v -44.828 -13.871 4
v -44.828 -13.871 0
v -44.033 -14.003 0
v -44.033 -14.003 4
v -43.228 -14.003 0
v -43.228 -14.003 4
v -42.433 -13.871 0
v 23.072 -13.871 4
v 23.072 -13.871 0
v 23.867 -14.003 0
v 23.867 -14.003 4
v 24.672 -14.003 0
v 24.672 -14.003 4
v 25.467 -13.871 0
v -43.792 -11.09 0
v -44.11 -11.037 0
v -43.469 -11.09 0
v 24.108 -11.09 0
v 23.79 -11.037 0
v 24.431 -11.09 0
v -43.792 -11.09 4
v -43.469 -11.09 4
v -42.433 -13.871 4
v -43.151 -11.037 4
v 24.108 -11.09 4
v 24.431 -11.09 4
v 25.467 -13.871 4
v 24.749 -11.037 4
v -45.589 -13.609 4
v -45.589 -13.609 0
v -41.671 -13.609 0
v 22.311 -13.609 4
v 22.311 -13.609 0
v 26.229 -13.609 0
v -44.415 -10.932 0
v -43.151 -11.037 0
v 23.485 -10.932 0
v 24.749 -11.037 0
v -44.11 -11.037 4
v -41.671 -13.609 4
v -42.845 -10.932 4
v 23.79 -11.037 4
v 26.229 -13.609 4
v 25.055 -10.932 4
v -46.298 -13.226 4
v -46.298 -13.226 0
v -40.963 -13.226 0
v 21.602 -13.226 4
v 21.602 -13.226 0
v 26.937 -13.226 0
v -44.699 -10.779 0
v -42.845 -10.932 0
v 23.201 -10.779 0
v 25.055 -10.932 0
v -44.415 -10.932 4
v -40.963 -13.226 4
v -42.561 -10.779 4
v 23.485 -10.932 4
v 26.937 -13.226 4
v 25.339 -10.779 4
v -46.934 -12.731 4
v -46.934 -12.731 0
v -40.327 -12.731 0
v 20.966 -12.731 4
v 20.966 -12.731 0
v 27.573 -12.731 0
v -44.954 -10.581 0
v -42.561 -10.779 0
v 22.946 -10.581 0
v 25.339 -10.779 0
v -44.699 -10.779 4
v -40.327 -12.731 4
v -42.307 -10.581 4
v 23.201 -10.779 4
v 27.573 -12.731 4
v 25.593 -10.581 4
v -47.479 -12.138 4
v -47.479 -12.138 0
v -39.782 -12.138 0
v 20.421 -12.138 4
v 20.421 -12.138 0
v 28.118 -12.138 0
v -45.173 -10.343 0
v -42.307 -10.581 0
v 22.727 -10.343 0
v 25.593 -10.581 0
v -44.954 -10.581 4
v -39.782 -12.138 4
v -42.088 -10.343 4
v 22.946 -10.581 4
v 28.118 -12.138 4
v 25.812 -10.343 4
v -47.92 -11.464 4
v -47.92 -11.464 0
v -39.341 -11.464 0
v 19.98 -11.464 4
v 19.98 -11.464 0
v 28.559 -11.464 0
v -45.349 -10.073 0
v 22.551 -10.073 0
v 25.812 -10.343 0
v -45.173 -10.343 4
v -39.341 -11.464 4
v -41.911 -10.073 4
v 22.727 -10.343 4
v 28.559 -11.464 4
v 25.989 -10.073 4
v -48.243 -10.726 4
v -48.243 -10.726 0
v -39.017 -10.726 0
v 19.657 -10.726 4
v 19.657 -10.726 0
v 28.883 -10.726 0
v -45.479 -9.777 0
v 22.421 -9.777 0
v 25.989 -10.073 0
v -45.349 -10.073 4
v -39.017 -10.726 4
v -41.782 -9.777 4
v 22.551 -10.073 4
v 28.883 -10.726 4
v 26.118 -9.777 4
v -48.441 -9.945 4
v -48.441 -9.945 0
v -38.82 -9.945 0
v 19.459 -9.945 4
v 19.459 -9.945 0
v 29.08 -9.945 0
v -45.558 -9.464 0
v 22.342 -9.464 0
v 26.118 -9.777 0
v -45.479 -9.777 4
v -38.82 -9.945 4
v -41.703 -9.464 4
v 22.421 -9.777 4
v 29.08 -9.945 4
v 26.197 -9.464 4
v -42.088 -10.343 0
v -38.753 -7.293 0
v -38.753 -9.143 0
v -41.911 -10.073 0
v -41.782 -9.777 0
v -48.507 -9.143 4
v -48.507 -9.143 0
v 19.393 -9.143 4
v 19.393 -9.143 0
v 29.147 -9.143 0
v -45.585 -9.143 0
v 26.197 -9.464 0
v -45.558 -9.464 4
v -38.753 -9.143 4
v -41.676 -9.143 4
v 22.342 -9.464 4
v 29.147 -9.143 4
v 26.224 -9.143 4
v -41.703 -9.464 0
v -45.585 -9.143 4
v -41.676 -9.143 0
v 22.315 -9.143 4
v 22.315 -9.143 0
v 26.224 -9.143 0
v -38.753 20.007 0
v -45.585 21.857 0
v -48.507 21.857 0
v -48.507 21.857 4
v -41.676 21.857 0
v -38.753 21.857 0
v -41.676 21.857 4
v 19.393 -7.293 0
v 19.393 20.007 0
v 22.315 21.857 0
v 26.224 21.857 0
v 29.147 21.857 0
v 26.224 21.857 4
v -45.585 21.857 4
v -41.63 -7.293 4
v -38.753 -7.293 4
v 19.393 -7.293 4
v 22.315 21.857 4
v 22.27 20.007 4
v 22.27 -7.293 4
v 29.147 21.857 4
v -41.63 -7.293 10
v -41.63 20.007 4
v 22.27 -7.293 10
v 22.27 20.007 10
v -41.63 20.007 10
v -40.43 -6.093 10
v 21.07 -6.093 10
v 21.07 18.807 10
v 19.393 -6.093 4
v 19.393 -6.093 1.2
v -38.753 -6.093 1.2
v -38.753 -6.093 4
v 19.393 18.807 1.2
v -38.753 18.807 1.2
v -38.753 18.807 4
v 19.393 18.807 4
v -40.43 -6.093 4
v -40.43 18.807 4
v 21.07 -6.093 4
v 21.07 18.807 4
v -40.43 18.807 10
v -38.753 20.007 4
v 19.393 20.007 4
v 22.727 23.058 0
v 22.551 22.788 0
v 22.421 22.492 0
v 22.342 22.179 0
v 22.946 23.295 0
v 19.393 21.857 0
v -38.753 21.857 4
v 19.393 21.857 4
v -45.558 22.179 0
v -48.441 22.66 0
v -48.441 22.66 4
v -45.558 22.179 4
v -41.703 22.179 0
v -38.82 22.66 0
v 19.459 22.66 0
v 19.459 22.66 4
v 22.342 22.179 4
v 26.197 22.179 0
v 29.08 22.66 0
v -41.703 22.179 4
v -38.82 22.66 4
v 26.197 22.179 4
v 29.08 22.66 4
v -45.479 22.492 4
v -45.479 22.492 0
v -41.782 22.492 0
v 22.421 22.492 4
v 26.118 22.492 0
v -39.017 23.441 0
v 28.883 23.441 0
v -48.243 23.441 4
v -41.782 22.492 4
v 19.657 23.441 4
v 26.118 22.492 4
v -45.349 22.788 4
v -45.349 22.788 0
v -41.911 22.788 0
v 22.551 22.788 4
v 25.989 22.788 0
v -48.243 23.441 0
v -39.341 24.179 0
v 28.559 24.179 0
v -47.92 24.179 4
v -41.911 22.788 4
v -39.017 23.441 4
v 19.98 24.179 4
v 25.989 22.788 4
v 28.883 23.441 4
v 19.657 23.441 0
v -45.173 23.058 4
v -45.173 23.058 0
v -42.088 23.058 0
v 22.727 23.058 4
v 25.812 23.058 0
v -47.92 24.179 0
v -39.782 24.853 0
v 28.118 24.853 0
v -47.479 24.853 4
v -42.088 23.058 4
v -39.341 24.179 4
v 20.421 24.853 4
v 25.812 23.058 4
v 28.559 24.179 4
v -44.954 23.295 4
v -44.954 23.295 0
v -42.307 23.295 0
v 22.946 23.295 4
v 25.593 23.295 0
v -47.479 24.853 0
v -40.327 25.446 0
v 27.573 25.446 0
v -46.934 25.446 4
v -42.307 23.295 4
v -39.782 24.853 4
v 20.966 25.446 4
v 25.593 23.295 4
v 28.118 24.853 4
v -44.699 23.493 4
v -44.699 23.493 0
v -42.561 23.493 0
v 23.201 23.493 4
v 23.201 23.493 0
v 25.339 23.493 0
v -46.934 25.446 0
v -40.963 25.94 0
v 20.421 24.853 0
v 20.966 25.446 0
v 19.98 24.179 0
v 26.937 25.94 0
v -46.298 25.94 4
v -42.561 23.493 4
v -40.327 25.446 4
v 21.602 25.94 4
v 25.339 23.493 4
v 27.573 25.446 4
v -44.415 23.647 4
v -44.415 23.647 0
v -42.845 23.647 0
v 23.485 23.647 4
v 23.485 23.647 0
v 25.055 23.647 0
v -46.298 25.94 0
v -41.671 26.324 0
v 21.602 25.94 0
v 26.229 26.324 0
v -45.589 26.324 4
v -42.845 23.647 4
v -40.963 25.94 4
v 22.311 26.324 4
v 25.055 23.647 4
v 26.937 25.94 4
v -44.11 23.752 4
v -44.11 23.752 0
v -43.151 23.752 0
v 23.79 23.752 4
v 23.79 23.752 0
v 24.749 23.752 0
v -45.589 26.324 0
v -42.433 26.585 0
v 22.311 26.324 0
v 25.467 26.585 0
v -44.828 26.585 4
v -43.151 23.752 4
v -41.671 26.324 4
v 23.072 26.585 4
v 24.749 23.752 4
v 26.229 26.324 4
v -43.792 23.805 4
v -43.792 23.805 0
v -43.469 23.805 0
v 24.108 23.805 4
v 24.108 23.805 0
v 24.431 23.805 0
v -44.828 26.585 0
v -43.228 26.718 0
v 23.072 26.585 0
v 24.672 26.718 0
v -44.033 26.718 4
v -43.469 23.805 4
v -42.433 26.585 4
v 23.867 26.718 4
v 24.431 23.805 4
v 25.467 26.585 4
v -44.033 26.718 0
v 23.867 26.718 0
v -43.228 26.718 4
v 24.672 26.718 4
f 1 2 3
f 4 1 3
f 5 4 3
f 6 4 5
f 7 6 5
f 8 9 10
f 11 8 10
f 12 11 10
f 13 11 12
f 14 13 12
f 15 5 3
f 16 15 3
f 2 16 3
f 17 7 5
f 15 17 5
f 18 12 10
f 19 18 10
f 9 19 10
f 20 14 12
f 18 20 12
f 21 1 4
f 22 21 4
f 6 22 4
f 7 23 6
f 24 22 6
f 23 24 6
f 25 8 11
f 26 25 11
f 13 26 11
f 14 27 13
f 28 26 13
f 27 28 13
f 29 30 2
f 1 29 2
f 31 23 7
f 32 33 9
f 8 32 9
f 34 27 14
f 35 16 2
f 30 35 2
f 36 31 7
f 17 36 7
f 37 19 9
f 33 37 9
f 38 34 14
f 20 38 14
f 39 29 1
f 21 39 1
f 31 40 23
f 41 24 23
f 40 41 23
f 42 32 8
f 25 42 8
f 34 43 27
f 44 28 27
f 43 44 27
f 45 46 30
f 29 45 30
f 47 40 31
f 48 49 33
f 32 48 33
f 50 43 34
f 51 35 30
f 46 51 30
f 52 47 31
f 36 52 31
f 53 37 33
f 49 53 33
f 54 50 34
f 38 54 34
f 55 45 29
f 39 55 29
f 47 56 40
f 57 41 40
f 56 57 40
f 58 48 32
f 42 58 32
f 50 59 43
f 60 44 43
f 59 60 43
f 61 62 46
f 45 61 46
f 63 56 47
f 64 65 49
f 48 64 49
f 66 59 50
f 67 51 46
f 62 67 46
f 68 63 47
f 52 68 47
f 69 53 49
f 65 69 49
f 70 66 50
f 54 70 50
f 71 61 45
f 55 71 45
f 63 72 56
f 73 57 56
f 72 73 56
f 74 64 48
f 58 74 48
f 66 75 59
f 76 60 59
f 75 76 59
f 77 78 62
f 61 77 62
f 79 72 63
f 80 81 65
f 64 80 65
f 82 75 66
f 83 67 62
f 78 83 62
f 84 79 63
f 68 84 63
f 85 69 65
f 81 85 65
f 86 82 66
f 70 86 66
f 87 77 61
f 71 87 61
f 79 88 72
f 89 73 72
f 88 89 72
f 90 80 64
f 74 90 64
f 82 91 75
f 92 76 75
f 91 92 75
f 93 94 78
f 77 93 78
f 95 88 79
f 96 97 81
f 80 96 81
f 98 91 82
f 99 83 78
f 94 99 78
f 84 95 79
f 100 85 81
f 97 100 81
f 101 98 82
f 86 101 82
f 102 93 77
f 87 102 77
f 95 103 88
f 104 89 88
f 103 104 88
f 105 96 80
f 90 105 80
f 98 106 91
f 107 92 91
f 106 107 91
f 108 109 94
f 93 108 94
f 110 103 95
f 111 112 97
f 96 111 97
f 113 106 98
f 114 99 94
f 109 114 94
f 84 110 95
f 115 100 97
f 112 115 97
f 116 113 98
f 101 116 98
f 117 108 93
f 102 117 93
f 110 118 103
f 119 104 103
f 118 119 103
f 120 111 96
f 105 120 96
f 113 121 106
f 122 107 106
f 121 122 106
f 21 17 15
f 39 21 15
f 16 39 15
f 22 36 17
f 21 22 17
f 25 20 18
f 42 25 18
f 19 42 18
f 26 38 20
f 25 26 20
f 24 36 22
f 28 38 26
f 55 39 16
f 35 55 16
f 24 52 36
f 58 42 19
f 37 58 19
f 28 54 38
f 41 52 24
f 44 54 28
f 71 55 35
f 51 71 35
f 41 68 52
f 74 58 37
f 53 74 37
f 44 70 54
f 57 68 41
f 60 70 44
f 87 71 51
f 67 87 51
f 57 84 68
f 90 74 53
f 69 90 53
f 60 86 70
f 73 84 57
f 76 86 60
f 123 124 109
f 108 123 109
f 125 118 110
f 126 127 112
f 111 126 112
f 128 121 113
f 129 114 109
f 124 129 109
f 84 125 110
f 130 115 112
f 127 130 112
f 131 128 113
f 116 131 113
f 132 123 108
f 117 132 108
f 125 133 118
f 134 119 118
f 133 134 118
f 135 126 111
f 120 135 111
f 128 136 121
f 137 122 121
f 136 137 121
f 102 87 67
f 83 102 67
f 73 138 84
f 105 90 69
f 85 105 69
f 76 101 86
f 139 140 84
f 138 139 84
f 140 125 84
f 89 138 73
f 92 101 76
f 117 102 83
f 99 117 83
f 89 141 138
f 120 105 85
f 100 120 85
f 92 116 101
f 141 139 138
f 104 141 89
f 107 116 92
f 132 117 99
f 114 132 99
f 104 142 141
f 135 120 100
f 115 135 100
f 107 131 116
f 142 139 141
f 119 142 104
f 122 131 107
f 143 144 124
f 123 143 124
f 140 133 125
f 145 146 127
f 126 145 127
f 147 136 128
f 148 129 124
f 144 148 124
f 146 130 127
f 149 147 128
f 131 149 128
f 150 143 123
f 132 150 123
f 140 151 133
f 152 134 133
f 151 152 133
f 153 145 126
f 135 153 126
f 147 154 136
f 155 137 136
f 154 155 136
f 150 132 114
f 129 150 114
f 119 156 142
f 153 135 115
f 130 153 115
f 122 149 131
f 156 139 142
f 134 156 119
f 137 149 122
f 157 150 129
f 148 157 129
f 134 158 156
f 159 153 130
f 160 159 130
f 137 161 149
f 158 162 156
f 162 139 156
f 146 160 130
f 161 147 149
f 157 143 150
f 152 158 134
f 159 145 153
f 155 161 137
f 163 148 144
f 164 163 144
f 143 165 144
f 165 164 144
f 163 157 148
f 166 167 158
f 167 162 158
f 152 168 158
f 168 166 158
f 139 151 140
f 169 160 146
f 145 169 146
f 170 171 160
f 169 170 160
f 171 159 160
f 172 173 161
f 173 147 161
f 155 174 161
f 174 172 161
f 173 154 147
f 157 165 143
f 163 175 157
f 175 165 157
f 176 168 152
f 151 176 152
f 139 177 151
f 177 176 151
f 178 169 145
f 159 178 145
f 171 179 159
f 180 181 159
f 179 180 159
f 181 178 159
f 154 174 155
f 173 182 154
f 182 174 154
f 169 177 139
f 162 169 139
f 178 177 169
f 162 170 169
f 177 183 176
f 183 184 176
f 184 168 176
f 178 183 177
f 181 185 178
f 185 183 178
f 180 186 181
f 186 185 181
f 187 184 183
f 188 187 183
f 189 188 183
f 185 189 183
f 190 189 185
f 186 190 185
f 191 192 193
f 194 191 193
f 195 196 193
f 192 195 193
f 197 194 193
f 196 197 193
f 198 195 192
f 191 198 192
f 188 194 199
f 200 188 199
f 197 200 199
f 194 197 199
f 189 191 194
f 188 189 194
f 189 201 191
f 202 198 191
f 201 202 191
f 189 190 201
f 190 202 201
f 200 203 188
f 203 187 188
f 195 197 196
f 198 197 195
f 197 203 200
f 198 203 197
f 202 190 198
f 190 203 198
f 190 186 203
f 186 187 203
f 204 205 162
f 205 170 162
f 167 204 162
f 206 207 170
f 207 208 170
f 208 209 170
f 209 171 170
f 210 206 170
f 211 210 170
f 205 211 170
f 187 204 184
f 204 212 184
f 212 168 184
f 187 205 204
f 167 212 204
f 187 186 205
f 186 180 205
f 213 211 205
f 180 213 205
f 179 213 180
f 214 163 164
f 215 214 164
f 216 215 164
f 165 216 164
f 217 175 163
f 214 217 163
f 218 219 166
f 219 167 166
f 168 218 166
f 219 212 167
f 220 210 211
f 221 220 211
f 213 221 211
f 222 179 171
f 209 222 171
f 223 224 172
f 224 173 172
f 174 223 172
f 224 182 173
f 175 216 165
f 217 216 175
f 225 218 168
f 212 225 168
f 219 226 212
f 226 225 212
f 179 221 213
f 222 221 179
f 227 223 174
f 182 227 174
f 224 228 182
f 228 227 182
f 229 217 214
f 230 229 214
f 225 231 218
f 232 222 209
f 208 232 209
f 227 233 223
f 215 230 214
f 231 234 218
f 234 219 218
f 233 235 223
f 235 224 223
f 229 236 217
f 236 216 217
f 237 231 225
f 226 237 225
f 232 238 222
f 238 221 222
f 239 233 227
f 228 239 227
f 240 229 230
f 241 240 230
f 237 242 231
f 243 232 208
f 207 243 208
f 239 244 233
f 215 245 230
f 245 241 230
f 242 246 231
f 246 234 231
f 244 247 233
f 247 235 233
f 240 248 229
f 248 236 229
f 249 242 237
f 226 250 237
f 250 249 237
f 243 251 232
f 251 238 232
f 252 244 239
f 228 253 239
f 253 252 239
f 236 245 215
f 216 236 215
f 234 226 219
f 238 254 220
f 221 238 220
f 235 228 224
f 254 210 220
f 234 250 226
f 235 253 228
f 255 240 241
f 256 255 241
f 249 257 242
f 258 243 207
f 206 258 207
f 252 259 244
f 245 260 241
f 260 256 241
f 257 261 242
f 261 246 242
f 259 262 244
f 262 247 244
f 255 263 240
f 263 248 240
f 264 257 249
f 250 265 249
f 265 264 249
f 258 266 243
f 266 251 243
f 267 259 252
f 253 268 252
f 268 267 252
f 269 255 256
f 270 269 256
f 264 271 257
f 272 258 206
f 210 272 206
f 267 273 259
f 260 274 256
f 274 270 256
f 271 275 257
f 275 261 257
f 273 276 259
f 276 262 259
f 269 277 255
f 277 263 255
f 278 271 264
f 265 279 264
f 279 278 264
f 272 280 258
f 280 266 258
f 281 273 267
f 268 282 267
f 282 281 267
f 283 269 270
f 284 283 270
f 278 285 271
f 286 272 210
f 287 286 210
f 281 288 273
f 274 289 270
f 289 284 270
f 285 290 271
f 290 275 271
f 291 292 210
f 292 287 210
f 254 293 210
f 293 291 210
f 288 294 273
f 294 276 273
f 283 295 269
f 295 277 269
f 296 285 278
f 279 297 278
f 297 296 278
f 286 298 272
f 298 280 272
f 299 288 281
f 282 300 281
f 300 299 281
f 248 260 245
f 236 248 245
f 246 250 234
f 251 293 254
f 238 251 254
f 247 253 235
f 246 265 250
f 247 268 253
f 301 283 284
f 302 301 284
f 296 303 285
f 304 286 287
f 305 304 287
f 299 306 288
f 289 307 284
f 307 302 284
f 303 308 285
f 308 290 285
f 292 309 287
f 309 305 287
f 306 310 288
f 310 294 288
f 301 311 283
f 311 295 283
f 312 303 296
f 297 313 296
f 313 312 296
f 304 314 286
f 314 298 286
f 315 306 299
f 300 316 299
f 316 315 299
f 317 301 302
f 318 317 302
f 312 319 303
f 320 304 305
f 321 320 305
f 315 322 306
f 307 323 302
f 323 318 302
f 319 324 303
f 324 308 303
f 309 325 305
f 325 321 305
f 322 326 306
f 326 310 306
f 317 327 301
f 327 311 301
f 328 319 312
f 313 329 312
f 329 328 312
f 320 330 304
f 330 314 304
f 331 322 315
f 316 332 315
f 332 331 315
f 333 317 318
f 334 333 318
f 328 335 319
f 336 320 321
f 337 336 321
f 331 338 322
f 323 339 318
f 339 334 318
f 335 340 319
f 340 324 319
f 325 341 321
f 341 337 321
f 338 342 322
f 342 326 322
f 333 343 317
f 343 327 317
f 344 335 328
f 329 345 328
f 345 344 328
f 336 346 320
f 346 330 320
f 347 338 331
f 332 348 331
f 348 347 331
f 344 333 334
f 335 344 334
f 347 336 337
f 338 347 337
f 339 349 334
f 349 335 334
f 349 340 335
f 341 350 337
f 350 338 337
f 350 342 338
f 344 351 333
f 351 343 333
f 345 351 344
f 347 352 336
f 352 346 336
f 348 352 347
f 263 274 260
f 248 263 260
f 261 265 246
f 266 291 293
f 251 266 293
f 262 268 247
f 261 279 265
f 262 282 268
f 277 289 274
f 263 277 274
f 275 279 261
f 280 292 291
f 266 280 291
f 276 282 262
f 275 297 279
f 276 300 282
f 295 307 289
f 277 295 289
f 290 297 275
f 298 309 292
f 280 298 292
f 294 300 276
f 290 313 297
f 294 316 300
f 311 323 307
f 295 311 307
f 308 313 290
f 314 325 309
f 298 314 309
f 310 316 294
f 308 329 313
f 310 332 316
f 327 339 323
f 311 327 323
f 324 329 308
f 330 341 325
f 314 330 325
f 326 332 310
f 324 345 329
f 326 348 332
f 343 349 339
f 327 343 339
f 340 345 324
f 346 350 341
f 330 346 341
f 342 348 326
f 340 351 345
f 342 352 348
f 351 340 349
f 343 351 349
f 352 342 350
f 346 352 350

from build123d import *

# Parameters (mm, degrees)
BOSS_EXTRUDE1_DEPTH = 10
SKETCH2_W           = 63.9
SKETCH2_H           = 27.3
BOSS_EXTRUDE2_DEPTH = 1.2
BOSS_EXTRUDE3_DEPTH = 4


with BuildPart() as part:
    # 3DSketch1 → Boss-Extrude1 (new body)
    with BuildSketch(Plane(origin=(-40.430283892, 18.807335645, 0), x_dir=(0.9232075579857172, -0.3843017107404659, 0), z_dir=(0, 0, 1))):
        Polygon((-1.569011122, 0.646687017), (57.423951833, 25.203566333), (67.915388536, 0), (8.922425581, -24.556879316), align=None)
        Polygon((0, 0), (56.777264816, 23.634555211), (66.346377414, 0.646687017), (9.569112597, -22.987868194), align=None, mode=Mode.SUBTRACT)
    extrude(amount=BOSS_EXTRUDE1_DEPTH)

    # Sketch2 → Boss-Extrude2 (add)
    with BuildSketch(Plane(origin=(0, 0, 0), x_dir=(-1, 0, 0), z_dir=(0, 0, -1))):
        with Locations((9.680283892, 6.357335645)):
            Rectangle(SKETCH2_W, SKETCH2_H)
    extrude(amount=-BOSS_EXTRUDE2_DEPTH)

    # Sketch4 → Boss-Extrude3 (add)
    with BuildSketch(Plane(origin=(0, 0, 0), x_dir=(-1, 0, 0), z_dir=(0, 0, -1))):
        with BuildLine():
            Line((48.507458783, 21.857335645), (48.507458783, -9.142664355))
            ThreePointArc((48.507458783, -9.142664355), (43.630283892, -14.019839246), (38.753109001, -9.142664355))
            Line((38.753109001, -9.142664355), (38.753109001, 21.857335645))
            ThreePointArc((38.753109001, 21.857335645), (43.630283892, 26.734510536), (48.507458783, 21.857335645))
        make_face()
        with BuildLine():
            Line((45.58467524, 21.857335645), (45.58467524, -9.142664355))
            ThreePointArc((45.58467524, -9.142664355), (43.630283892, -11.097055703), (41.675892544, -9.142664355))
            Line((41.675892544, -9.142664355), (41.675892544, 21.857335645))
            ThreePointArc((41.675892544, 21.857335645), (43.630283892, 23.811726993), (45.58467524, 21.857335645))
        make_face(mode=Mode.SUBTRACT)
        with BuildLine():
            Line((-29.146890999, 21.857335645), (-29.146890999, -9.142664355))
            ThreePointArc((-29.146890999, -9.142664355), (-24.269716108, -14.019839246), (-19.392541217, -9.142664355))
            Line((-19.392541217, -9.142664355), (-19.392541217, 21.857335645))
            ThreePointArc((-19.392541217, 21.857335645), (-24.269716108, 26.734510536), (-29.146890999, 21.857335645))
        make_face()
        with BuildLine():
            Line((-26.224107456, 21.857335645), (-26.224107456, -9.142664355))
            ThreePointArc((-26.224107456, -9.142664355), (-24.269716108, -11.097055703), (-22.31532476, -9.142664355))
            Line((-22.31532476, -9.142664355), (-22.31532476, 21.857335645))
            ThreePointArc((-22.31532476, 21.857335645), (-24.269716108, 23.811726993), (-26.224107456, 21.857335645))
        make_face(mode=Mode.SUBTRACT)
    extrude(amount=-BOSS_EXTRUDE3_DEPTH)


solid = part.part
